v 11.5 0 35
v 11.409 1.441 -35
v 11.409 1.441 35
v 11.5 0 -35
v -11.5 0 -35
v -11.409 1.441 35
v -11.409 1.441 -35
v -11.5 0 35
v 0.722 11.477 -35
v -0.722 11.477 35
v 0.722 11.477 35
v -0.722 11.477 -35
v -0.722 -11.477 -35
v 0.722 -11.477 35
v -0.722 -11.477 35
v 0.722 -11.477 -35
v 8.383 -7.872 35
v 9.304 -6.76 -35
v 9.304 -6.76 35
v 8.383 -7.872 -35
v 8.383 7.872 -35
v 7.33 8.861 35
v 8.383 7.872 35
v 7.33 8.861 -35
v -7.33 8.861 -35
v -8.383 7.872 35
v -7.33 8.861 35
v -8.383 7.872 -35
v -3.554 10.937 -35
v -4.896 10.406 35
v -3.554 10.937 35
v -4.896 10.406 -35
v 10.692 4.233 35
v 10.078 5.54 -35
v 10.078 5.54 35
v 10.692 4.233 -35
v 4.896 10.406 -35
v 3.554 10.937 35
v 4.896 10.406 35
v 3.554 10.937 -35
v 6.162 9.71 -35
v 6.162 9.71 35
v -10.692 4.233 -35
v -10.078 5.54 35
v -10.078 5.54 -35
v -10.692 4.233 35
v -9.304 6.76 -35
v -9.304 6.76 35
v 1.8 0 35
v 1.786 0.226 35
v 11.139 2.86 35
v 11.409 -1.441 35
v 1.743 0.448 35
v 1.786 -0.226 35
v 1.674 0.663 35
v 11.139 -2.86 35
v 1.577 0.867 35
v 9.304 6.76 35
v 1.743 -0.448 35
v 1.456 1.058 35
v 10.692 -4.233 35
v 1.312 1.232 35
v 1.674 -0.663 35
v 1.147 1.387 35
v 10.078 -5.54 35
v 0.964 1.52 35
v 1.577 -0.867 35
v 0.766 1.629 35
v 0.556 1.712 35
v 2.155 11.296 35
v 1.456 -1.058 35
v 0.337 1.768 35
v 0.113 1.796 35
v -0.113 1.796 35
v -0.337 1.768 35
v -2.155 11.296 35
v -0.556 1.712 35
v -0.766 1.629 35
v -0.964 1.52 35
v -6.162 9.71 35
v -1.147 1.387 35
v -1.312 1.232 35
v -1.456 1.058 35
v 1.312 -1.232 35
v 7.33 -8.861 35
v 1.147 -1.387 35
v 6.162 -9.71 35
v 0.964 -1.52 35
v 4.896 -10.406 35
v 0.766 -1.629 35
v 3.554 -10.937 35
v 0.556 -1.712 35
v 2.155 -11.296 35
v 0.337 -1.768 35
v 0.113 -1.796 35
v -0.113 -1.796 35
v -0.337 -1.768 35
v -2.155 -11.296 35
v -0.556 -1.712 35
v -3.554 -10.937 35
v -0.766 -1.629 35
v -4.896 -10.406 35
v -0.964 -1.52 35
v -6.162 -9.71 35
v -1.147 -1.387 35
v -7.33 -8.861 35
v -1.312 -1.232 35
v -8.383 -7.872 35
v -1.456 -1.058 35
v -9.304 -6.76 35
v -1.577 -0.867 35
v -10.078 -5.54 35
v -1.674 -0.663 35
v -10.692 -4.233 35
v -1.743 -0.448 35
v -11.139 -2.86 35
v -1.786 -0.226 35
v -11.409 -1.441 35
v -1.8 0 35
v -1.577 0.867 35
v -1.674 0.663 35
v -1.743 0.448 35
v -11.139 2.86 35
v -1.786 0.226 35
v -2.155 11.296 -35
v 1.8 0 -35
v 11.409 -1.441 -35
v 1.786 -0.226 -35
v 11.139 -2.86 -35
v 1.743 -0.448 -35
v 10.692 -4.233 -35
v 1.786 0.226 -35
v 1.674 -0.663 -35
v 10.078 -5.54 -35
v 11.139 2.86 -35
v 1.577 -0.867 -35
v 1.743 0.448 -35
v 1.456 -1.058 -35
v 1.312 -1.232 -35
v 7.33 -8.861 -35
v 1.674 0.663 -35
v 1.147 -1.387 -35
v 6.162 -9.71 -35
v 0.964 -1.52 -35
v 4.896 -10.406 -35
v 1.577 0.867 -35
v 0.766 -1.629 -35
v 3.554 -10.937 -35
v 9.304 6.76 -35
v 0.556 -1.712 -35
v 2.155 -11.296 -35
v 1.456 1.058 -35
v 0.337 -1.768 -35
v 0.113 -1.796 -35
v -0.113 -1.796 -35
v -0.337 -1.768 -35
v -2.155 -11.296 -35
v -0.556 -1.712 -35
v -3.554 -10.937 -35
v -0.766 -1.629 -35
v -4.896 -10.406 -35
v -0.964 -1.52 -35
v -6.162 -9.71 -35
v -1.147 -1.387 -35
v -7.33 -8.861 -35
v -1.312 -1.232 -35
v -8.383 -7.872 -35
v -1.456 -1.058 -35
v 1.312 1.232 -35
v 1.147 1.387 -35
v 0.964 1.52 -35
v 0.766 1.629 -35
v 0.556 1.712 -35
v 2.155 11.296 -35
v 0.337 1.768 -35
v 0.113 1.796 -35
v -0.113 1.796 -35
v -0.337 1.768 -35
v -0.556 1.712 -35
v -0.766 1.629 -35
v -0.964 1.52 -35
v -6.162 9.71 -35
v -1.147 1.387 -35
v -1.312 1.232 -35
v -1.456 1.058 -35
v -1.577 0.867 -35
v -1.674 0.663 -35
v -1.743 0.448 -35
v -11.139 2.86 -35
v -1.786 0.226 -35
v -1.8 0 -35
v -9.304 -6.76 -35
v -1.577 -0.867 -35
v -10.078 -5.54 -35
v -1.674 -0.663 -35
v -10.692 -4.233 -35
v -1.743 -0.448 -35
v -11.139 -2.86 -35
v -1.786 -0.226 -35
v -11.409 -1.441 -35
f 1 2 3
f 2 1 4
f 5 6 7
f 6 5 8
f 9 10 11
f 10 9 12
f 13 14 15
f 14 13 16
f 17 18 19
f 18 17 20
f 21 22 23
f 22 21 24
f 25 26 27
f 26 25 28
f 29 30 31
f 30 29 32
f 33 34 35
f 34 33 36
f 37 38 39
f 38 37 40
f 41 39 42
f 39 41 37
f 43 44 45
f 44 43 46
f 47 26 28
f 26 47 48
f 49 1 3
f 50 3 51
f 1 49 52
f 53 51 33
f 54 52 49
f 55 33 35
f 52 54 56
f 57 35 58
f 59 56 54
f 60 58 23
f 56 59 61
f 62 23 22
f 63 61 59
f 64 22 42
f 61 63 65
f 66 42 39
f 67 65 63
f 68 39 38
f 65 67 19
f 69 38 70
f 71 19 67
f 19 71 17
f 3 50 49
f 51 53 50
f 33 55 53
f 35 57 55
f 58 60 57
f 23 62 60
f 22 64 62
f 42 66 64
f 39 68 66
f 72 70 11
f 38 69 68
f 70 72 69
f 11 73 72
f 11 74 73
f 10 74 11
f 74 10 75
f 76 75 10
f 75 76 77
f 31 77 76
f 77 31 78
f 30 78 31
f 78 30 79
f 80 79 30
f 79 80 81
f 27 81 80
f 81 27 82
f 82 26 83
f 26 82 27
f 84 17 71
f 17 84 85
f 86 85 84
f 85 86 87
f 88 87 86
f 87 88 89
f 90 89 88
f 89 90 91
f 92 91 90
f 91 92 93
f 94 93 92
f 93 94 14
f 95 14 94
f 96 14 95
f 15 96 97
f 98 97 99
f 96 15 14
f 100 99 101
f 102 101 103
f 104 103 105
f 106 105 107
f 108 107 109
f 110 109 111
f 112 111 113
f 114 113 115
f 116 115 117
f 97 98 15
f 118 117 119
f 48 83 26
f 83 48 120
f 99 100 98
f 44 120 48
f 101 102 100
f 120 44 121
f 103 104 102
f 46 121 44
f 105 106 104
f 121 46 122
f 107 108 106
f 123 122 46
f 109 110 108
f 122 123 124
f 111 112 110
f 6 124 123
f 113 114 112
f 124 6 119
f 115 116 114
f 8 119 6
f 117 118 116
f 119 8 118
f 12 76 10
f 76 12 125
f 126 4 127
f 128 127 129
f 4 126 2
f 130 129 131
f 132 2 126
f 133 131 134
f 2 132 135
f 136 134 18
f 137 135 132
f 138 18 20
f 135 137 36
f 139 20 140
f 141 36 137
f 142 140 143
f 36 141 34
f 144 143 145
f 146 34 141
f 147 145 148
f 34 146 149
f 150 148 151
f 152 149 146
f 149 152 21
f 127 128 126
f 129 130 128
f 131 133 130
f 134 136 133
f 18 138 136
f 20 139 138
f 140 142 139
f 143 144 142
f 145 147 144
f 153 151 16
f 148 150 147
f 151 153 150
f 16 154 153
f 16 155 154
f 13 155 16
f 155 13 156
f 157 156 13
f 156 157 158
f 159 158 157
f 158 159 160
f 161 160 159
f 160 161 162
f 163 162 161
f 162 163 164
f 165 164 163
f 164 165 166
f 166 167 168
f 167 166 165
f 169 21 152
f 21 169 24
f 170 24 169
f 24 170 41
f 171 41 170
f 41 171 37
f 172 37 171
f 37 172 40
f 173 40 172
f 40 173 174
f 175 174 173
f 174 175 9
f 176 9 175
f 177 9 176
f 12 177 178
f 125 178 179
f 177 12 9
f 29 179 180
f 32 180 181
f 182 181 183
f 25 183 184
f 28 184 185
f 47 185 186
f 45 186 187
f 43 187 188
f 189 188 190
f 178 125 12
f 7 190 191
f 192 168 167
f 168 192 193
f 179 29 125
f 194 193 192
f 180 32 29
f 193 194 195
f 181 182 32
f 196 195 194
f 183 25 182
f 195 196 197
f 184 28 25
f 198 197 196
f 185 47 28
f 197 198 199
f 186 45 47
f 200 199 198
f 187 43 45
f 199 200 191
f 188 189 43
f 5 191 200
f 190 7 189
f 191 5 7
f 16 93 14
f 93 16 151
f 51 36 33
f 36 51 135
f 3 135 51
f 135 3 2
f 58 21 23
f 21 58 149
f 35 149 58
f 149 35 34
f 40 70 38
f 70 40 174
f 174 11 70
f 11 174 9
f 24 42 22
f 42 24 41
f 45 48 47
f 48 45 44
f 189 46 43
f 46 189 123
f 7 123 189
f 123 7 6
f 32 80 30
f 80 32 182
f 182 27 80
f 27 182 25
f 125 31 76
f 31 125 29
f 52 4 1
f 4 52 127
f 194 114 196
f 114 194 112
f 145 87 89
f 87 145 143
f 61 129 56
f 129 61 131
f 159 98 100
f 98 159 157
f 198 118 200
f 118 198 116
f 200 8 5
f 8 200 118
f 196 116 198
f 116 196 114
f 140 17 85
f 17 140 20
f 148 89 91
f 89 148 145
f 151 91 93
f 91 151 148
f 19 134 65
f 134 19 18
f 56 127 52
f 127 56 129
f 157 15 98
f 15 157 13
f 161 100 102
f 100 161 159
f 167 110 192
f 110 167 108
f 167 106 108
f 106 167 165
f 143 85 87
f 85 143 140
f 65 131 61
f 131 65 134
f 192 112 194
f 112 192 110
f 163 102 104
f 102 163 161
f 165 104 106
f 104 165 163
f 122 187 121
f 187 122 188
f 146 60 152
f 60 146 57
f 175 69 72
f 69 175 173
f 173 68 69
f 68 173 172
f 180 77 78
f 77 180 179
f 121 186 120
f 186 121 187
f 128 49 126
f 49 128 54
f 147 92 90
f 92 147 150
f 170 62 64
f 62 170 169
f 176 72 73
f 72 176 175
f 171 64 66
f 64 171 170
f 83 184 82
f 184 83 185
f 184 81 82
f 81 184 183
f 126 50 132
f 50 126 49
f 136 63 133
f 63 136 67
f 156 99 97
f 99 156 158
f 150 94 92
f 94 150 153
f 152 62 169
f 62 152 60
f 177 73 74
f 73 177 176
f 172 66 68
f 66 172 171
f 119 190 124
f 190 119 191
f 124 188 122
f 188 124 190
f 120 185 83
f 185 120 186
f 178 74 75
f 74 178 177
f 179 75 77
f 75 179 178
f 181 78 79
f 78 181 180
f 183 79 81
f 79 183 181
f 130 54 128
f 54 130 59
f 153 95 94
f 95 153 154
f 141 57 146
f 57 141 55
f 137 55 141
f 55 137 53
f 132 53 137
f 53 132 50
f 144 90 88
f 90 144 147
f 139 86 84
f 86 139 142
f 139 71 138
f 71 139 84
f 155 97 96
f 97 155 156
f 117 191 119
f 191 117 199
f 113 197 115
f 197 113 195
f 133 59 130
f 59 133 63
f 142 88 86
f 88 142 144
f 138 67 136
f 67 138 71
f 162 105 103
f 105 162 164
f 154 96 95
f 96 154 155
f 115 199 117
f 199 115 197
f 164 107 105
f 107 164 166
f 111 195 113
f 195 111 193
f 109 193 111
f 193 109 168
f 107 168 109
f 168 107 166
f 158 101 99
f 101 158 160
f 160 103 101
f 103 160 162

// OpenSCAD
$fn = 50;


difference() {
	union() {
		translate(v = [0, 0, -35.0000000000]) {
			cylinder(h = 70, r = 11.5000000000);
		}
	}
	union() {
		translate(v = [0, 0, -100.0000000000]) {
			cylinder(h = 200, r = 1.8000000000);
		}
	}
}
